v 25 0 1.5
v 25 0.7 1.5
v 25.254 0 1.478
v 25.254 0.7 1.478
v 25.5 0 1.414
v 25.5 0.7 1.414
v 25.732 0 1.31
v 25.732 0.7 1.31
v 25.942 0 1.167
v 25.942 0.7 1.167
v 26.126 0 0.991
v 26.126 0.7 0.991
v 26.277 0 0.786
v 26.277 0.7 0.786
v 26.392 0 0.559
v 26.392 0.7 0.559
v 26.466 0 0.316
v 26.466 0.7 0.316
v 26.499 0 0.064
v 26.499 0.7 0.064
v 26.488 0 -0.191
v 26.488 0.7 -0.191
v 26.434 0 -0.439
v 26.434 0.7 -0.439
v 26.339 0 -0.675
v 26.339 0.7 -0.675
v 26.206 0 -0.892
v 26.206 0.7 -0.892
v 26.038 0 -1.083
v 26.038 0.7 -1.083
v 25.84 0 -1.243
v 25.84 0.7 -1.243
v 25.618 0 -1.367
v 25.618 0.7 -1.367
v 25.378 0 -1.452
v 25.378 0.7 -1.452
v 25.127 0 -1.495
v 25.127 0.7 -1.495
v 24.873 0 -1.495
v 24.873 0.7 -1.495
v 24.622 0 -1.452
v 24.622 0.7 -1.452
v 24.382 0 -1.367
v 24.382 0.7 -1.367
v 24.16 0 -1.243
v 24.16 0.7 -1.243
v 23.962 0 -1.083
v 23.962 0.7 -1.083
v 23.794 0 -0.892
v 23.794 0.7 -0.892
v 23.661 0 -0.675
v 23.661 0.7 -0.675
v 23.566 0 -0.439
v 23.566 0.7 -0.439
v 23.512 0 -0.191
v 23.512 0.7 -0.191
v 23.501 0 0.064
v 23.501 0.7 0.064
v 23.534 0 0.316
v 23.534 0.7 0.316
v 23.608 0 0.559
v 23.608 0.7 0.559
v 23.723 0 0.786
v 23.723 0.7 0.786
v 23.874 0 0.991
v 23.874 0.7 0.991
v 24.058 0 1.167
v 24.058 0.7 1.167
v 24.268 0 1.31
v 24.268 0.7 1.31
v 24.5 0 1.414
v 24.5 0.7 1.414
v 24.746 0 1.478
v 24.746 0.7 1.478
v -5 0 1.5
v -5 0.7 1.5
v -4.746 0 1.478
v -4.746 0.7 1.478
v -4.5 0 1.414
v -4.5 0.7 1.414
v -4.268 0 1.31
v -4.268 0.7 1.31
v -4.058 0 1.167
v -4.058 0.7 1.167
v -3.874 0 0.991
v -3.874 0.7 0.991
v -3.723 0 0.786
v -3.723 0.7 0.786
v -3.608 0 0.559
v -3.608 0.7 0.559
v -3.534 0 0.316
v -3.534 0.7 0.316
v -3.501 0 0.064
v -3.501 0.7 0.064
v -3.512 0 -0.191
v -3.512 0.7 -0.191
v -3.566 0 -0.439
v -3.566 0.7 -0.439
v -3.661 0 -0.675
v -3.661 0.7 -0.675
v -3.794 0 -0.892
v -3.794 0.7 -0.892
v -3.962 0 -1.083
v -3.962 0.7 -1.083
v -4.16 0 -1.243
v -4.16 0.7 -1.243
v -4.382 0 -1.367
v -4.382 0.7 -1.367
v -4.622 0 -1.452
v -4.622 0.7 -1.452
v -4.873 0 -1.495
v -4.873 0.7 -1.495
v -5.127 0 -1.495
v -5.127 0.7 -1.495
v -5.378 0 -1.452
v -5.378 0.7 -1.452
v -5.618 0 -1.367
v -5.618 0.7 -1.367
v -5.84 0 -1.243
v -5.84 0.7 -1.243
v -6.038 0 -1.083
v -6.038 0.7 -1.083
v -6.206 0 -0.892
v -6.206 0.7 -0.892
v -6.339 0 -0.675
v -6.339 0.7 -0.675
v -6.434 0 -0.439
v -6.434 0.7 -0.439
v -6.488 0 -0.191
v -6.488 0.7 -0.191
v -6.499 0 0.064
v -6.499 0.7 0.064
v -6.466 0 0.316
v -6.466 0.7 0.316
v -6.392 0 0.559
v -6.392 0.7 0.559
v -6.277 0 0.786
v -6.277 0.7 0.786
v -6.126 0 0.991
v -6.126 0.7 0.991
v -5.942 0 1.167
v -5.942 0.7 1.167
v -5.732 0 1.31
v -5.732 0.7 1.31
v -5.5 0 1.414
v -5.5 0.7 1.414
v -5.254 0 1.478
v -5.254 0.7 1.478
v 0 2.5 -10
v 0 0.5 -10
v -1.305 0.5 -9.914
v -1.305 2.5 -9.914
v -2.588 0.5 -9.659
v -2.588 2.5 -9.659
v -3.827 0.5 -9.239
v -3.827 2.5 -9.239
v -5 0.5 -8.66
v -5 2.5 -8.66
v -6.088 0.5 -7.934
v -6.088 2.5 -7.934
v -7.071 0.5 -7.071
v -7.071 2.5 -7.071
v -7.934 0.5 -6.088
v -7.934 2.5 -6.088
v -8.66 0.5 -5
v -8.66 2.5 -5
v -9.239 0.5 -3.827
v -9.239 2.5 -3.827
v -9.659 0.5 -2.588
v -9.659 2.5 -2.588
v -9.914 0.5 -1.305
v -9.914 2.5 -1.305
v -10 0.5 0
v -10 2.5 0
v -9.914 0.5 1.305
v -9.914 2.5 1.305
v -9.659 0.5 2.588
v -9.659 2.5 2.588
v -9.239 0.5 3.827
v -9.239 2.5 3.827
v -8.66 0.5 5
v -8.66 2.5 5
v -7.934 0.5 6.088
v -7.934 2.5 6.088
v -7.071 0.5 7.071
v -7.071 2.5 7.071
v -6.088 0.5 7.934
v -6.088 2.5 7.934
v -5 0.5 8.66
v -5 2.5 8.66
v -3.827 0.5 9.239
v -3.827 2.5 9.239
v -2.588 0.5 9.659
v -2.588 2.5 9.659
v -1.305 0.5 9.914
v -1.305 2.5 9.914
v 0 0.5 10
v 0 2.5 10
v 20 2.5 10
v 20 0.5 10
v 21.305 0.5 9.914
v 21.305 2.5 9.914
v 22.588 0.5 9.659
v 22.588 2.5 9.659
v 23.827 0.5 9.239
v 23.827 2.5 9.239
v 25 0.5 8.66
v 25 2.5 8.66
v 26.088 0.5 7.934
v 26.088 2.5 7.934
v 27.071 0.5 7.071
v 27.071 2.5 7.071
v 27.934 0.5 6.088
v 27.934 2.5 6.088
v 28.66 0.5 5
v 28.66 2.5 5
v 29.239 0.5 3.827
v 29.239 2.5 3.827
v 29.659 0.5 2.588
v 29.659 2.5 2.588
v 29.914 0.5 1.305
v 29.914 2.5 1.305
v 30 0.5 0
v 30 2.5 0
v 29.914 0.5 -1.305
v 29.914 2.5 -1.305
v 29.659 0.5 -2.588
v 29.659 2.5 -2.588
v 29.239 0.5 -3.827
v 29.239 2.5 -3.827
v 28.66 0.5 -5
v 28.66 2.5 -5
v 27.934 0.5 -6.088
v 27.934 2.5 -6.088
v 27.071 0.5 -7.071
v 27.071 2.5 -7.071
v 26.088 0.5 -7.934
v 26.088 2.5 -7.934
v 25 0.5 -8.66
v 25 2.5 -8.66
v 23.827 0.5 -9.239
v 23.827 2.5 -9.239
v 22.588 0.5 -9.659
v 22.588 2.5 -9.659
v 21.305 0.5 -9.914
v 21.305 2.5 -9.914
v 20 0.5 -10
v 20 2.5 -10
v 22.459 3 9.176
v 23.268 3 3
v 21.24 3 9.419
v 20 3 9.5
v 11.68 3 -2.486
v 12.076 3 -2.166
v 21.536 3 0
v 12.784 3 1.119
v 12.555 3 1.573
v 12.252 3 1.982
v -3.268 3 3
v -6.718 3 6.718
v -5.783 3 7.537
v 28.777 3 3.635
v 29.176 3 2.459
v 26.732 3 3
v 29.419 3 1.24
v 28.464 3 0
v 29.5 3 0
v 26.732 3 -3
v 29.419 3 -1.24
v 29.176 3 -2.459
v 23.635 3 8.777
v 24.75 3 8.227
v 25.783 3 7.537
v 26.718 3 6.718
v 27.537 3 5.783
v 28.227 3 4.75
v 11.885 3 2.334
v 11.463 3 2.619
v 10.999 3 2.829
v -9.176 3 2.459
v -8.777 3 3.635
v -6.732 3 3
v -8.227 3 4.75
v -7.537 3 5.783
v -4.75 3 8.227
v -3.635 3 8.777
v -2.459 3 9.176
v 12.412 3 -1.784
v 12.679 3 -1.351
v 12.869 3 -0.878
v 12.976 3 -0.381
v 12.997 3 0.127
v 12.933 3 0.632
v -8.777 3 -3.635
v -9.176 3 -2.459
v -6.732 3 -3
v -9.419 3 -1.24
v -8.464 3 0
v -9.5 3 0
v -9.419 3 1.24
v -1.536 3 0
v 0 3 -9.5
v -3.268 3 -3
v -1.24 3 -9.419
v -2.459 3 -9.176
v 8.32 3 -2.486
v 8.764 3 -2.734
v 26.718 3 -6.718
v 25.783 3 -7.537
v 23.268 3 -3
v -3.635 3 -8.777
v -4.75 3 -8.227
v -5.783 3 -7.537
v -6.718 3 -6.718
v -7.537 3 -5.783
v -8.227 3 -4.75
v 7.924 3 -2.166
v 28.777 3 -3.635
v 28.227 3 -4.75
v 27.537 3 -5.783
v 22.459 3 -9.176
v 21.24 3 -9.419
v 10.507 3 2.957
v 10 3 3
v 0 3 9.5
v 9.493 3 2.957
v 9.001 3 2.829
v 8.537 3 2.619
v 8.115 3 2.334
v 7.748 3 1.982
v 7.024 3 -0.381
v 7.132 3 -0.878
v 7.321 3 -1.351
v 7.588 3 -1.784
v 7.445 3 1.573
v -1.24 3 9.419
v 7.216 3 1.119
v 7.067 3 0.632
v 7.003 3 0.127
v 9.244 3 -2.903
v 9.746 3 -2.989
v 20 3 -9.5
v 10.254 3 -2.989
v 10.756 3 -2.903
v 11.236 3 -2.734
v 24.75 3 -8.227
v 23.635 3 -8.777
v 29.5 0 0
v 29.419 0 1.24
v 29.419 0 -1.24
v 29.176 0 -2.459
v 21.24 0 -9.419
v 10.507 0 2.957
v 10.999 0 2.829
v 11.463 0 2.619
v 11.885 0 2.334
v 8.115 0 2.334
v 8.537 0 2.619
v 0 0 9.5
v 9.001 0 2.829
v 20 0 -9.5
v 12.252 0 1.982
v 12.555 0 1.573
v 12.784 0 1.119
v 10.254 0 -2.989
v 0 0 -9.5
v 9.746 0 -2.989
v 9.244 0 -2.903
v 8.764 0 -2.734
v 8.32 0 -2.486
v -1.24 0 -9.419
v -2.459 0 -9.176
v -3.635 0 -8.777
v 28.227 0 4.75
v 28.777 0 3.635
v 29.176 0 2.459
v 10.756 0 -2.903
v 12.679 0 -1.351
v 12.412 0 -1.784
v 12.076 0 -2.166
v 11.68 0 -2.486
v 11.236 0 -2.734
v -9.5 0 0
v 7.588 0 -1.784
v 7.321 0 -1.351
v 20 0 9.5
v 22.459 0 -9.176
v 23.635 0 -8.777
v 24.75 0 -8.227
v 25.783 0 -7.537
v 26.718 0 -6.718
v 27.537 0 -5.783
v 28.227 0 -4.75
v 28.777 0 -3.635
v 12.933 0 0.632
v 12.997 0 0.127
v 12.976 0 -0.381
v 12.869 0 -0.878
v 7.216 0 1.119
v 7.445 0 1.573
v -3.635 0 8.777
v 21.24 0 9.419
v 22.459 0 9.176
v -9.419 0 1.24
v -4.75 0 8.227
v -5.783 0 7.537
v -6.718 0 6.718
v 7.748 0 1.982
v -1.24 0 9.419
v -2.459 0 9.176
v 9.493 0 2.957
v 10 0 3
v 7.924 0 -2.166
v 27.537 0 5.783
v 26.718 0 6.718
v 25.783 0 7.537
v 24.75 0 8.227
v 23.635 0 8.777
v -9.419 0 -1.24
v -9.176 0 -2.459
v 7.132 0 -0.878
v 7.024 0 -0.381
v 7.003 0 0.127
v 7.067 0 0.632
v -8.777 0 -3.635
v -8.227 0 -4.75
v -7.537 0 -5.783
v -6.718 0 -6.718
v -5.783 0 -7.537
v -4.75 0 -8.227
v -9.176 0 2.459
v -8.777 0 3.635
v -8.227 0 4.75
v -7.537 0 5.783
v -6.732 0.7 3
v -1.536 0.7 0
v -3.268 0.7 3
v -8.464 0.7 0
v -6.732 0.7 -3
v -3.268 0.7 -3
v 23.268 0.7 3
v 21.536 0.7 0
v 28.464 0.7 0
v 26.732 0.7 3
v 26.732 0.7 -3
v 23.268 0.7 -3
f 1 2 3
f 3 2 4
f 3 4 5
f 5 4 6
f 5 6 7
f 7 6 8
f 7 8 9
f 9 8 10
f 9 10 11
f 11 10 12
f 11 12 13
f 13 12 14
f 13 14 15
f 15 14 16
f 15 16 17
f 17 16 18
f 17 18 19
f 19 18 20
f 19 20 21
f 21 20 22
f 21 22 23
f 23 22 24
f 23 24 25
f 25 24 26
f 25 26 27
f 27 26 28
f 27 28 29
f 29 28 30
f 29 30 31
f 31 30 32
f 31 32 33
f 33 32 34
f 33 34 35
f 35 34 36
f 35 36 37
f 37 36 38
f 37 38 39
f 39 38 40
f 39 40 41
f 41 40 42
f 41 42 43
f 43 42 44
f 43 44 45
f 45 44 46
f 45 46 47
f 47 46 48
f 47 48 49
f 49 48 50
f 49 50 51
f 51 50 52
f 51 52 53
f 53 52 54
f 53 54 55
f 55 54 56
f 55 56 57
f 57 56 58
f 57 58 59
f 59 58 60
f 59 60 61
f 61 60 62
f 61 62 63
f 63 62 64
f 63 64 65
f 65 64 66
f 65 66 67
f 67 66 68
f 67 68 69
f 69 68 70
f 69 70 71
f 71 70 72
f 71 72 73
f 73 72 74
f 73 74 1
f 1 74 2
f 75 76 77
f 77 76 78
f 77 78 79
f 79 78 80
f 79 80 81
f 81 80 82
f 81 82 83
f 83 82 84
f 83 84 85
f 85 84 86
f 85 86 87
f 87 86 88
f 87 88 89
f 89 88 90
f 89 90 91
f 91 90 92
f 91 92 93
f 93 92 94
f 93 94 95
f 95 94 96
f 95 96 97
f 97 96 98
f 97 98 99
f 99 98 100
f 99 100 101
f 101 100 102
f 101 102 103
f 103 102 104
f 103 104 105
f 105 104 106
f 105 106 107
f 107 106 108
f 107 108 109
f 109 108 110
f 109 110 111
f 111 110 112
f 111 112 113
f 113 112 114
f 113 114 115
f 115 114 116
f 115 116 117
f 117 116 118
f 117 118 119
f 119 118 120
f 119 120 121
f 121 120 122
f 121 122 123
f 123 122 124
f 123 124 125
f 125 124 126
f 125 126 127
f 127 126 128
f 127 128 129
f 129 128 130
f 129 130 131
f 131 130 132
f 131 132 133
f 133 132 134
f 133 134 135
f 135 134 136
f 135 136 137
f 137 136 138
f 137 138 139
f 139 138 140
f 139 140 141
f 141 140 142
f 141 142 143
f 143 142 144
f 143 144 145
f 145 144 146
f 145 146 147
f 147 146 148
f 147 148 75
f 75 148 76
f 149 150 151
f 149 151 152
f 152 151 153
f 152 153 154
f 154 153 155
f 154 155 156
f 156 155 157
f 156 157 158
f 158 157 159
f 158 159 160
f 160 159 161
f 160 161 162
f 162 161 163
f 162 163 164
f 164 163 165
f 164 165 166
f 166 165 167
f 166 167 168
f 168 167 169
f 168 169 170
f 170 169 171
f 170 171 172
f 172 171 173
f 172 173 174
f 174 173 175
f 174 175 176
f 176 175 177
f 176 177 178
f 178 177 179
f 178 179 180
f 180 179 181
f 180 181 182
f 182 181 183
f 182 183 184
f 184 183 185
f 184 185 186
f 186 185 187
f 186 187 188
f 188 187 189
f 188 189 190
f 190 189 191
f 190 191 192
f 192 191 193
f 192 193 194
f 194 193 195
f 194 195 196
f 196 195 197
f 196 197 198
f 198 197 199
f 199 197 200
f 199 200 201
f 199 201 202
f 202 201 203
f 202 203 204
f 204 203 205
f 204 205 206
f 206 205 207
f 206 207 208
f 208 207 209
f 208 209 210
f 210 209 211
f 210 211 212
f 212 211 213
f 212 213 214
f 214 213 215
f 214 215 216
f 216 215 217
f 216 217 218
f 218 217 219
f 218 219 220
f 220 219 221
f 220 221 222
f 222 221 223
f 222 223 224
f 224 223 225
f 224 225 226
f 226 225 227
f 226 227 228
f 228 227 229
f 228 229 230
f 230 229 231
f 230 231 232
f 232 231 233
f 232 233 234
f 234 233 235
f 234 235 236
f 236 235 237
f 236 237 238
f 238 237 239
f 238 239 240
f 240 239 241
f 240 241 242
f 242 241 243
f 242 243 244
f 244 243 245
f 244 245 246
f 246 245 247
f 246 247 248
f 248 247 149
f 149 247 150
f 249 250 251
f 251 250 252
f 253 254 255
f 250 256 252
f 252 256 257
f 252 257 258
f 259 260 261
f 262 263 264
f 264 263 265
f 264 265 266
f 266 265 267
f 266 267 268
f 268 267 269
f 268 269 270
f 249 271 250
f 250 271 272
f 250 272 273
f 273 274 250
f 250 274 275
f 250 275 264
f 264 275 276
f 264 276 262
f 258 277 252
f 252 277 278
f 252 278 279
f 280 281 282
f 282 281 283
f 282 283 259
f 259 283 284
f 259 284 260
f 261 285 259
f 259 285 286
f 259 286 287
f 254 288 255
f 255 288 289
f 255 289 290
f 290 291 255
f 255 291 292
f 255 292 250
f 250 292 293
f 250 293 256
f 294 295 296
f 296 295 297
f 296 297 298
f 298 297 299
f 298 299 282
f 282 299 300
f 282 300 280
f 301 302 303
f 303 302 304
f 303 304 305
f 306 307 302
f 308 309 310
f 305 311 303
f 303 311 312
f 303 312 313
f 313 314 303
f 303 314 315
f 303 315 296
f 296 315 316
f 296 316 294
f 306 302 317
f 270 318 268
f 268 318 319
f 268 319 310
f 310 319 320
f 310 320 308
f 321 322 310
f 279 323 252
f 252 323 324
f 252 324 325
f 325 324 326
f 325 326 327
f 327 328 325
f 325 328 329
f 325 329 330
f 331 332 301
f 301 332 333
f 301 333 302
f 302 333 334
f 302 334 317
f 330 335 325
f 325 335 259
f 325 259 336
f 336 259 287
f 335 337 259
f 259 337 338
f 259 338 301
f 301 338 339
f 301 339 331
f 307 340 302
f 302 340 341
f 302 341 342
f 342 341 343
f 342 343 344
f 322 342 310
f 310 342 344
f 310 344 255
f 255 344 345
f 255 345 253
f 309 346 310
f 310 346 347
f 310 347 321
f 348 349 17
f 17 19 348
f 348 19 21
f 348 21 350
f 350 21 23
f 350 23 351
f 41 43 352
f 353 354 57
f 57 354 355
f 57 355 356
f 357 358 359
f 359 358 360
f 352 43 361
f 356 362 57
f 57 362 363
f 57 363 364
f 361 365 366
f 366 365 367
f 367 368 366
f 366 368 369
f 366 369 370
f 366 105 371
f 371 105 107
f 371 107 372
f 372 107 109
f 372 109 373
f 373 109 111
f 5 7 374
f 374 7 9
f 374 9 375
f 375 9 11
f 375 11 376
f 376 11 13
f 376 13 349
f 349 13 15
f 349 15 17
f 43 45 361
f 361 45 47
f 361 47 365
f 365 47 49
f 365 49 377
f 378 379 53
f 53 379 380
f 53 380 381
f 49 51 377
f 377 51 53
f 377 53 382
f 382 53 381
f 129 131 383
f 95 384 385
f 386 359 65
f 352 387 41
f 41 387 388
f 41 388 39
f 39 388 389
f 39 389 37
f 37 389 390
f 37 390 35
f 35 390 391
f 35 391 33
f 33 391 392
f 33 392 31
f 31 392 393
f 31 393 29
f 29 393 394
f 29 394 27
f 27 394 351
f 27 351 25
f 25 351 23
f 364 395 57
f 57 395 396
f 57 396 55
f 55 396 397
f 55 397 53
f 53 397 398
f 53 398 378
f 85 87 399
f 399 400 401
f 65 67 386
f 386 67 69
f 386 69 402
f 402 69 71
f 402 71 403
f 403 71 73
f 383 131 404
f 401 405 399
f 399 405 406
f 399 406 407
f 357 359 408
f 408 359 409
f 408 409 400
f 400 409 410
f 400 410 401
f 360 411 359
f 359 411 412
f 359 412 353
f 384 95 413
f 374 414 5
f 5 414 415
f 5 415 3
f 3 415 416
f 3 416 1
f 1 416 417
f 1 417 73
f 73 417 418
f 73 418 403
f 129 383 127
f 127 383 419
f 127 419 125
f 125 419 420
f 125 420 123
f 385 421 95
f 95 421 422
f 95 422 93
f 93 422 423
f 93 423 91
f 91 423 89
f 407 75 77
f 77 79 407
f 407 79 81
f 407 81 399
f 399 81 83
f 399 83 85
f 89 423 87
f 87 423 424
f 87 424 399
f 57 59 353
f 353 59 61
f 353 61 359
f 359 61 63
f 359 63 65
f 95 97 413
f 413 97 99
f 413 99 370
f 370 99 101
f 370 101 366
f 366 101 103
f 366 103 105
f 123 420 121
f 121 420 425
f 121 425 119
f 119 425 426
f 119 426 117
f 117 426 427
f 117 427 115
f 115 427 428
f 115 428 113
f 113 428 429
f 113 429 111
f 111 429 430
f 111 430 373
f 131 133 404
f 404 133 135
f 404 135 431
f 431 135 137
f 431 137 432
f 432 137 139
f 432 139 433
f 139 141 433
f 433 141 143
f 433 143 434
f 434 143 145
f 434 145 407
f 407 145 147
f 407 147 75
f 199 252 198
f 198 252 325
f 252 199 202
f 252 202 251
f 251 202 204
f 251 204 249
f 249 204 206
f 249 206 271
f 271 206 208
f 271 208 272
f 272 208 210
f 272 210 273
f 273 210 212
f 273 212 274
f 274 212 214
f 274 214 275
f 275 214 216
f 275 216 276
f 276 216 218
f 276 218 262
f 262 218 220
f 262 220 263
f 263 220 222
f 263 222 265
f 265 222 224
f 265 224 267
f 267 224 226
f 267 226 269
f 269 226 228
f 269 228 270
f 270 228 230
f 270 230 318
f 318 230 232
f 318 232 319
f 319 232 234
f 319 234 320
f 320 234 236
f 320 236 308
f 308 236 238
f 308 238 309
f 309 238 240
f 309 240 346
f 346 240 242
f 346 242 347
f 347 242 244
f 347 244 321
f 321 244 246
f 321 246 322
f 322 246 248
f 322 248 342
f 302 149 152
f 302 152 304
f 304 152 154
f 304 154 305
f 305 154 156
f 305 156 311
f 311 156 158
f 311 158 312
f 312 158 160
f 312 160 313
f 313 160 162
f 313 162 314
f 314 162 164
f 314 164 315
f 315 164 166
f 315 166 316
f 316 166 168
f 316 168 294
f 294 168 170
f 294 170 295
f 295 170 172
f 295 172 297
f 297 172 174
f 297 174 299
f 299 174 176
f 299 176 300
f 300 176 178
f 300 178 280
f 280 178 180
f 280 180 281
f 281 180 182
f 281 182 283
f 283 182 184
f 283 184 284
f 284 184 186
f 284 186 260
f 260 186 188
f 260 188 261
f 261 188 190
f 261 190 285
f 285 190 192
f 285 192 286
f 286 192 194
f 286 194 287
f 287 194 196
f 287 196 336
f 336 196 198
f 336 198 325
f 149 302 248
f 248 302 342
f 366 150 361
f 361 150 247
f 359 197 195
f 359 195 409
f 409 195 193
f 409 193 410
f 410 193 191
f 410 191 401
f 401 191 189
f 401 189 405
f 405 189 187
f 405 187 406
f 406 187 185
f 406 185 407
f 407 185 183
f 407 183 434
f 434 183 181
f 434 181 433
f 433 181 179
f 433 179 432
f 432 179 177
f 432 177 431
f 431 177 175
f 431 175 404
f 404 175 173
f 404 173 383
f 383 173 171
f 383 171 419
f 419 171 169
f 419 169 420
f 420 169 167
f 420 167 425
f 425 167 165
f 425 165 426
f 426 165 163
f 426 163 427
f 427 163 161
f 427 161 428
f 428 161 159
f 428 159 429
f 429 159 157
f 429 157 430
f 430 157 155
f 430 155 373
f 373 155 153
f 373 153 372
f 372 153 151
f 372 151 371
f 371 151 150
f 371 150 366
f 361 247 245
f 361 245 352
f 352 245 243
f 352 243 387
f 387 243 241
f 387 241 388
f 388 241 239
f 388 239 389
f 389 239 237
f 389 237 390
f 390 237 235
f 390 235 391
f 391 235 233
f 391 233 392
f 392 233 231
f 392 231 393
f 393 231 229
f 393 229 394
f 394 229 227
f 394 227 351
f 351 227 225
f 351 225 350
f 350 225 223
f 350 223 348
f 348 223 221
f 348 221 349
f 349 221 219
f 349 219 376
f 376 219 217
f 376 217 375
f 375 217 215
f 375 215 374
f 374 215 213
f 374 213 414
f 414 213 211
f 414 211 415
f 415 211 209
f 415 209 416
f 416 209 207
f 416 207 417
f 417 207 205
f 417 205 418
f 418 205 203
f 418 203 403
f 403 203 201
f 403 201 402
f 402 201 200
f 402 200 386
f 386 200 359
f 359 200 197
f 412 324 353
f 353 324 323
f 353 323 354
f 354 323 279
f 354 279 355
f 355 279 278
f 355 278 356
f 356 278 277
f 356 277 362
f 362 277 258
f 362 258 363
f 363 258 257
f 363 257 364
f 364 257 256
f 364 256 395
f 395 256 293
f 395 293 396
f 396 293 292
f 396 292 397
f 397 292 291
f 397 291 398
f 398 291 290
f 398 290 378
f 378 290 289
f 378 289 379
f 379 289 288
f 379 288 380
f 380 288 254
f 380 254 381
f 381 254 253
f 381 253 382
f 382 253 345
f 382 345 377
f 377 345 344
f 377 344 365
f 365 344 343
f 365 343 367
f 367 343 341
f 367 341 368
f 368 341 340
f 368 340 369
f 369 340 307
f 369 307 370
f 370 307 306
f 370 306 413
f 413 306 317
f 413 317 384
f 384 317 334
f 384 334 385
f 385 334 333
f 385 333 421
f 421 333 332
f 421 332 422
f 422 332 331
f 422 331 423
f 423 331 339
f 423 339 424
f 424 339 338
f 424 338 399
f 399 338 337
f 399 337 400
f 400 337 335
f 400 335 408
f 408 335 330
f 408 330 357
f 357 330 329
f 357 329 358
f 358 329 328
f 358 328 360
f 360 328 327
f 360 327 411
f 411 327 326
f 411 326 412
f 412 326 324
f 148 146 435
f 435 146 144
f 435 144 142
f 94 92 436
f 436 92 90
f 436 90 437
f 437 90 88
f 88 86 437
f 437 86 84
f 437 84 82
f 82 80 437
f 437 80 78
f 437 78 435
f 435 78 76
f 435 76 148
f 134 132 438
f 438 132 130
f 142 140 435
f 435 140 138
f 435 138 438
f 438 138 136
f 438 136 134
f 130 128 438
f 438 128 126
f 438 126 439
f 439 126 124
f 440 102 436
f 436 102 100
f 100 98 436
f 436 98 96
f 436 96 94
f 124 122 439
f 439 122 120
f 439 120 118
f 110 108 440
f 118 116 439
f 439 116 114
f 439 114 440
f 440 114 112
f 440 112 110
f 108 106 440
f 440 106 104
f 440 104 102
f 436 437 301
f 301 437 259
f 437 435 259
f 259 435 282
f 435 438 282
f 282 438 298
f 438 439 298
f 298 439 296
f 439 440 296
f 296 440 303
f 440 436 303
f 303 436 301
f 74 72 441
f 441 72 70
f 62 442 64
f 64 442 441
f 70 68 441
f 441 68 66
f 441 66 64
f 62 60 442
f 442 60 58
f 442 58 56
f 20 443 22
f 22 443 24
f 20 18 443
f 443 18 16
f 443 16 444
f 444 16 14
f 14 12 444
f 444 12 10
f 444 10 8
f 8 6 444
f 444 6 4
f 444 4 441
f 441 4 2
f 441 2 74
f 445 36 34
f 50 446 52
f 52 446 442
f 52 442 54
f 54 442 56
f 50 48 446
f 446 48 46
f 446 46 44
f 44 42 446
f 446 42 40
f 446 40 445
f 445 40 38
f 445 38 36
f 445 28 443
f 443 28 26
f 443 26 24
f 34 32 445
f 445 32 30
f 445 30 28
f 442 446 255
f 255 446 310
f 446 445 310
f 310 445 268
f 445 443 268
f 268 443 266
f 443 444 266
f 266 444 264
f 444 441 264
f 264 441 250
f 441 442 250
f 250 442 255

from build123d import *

# Parameters (mm, degrees)
BOSS_EXTRUDE1_DEPTH             = 3
M3X0_5_TAPPED_HOLE1_D           = 3
M3X0_5_TAPPED_HOLE1_CSINK_D     = 3.05
M3X0_5_TAPPED_HOLE1_CSINK_ANGLE = 90
CHAMFER1_SIZE                   = 0.5
SKETCH3_R                       = 3
CUT_EXTRUDE1_DEPTH              = 32.764760349
CUT_EXTRUDE2_DEPTH              = 2.3


with BuildPart() as part:
    # Sketch2 → Boss-Extrude1 (new body)
    with BuildSketch(Plane(origin=(0, 0, 0), x_dir=(1, 0, 0), z_dir=(0, 1, 0))):
        with BuildLine():
            Line((0, 10), (20, 10))
            ThreePointArc((20, 10), (30, 0), (20, -10))
            Line((20, -10), (0, -10))
            ThreePointArc((0, -10), (-10, 0), (0, 10))
        make_face()
    extrude(amount=BOSS_EXTRUDE1_DEPTH)

    # M3x0.5 Tapped Hole1 (through all)
    with Locations(Plane(origin=(0, 3, 0), x_dir=(1, 0, 0), z_dir=(0, 1, 0))):
        with Locations((-5, 0), (25, 0)):
            CounterSinkHole(M3X0_5_TAPPED_HOLE1_D / 2, M3X0_5_TAPPED_HOLE1_CSINK_D / 2, counter_sink_angle=M3X0_5_TAPPED_HOLE1_CSINK_ANGLE)

    # Chamfer1
    chamfer1_edges = [part.edges().sort_by_distance(p)[0] for p in [
        (30, 3, 0),
        (10, 3, -10),
        (-10, 3, 0),
        (10, 0, -10),
        (30, 0, 0),
        (10, 0, 10),
        (-10, 0, 0),
        (10, 3, 10),
    ]]
    chamfer(chamfer1_edges, length=CHAMFER1_SIZE)

    # Sketch3 → Cut-Extrude1 (cut, through all)
    with BuildSketch(Plane(origin=(0, 3, 0), x_dir=(1, 0, 0), z_dir=(0, 1, 0))):
        with Locations(Location((10, 0, 0), (0, 0, 270))):
            Circle(SKETCH3_R)
    extrude(amount=-CUT_EXTRUDE1_DEPTH, mode=Mode.SUBTRACT)

    # Sketch16 → Cut-Extrude2 (cut)
    with BuildSketch(Plane(origin=(0, 3, 0), x_dir=(1, 0, 0), z_dir=(0, 1, 0))):
        Polygon((-1.535898385, 0), (-3.267949192, 3), (-6.732050808, 3), (-8.464101615, 0), (-6.732050808, -3), (-3.267949192, -3), align=None)
        Polygon((21.535898385, 0), (23.267949192, -3), (26.732050808, -3), (28.464101615, 0), (26.732050808, 3), (23.267949192, 3), align=None)
    extrude(amount=-CUT_EXTRUDE2_DEPTH, mode=Mode.SUBTRACT)


solid = part.part
